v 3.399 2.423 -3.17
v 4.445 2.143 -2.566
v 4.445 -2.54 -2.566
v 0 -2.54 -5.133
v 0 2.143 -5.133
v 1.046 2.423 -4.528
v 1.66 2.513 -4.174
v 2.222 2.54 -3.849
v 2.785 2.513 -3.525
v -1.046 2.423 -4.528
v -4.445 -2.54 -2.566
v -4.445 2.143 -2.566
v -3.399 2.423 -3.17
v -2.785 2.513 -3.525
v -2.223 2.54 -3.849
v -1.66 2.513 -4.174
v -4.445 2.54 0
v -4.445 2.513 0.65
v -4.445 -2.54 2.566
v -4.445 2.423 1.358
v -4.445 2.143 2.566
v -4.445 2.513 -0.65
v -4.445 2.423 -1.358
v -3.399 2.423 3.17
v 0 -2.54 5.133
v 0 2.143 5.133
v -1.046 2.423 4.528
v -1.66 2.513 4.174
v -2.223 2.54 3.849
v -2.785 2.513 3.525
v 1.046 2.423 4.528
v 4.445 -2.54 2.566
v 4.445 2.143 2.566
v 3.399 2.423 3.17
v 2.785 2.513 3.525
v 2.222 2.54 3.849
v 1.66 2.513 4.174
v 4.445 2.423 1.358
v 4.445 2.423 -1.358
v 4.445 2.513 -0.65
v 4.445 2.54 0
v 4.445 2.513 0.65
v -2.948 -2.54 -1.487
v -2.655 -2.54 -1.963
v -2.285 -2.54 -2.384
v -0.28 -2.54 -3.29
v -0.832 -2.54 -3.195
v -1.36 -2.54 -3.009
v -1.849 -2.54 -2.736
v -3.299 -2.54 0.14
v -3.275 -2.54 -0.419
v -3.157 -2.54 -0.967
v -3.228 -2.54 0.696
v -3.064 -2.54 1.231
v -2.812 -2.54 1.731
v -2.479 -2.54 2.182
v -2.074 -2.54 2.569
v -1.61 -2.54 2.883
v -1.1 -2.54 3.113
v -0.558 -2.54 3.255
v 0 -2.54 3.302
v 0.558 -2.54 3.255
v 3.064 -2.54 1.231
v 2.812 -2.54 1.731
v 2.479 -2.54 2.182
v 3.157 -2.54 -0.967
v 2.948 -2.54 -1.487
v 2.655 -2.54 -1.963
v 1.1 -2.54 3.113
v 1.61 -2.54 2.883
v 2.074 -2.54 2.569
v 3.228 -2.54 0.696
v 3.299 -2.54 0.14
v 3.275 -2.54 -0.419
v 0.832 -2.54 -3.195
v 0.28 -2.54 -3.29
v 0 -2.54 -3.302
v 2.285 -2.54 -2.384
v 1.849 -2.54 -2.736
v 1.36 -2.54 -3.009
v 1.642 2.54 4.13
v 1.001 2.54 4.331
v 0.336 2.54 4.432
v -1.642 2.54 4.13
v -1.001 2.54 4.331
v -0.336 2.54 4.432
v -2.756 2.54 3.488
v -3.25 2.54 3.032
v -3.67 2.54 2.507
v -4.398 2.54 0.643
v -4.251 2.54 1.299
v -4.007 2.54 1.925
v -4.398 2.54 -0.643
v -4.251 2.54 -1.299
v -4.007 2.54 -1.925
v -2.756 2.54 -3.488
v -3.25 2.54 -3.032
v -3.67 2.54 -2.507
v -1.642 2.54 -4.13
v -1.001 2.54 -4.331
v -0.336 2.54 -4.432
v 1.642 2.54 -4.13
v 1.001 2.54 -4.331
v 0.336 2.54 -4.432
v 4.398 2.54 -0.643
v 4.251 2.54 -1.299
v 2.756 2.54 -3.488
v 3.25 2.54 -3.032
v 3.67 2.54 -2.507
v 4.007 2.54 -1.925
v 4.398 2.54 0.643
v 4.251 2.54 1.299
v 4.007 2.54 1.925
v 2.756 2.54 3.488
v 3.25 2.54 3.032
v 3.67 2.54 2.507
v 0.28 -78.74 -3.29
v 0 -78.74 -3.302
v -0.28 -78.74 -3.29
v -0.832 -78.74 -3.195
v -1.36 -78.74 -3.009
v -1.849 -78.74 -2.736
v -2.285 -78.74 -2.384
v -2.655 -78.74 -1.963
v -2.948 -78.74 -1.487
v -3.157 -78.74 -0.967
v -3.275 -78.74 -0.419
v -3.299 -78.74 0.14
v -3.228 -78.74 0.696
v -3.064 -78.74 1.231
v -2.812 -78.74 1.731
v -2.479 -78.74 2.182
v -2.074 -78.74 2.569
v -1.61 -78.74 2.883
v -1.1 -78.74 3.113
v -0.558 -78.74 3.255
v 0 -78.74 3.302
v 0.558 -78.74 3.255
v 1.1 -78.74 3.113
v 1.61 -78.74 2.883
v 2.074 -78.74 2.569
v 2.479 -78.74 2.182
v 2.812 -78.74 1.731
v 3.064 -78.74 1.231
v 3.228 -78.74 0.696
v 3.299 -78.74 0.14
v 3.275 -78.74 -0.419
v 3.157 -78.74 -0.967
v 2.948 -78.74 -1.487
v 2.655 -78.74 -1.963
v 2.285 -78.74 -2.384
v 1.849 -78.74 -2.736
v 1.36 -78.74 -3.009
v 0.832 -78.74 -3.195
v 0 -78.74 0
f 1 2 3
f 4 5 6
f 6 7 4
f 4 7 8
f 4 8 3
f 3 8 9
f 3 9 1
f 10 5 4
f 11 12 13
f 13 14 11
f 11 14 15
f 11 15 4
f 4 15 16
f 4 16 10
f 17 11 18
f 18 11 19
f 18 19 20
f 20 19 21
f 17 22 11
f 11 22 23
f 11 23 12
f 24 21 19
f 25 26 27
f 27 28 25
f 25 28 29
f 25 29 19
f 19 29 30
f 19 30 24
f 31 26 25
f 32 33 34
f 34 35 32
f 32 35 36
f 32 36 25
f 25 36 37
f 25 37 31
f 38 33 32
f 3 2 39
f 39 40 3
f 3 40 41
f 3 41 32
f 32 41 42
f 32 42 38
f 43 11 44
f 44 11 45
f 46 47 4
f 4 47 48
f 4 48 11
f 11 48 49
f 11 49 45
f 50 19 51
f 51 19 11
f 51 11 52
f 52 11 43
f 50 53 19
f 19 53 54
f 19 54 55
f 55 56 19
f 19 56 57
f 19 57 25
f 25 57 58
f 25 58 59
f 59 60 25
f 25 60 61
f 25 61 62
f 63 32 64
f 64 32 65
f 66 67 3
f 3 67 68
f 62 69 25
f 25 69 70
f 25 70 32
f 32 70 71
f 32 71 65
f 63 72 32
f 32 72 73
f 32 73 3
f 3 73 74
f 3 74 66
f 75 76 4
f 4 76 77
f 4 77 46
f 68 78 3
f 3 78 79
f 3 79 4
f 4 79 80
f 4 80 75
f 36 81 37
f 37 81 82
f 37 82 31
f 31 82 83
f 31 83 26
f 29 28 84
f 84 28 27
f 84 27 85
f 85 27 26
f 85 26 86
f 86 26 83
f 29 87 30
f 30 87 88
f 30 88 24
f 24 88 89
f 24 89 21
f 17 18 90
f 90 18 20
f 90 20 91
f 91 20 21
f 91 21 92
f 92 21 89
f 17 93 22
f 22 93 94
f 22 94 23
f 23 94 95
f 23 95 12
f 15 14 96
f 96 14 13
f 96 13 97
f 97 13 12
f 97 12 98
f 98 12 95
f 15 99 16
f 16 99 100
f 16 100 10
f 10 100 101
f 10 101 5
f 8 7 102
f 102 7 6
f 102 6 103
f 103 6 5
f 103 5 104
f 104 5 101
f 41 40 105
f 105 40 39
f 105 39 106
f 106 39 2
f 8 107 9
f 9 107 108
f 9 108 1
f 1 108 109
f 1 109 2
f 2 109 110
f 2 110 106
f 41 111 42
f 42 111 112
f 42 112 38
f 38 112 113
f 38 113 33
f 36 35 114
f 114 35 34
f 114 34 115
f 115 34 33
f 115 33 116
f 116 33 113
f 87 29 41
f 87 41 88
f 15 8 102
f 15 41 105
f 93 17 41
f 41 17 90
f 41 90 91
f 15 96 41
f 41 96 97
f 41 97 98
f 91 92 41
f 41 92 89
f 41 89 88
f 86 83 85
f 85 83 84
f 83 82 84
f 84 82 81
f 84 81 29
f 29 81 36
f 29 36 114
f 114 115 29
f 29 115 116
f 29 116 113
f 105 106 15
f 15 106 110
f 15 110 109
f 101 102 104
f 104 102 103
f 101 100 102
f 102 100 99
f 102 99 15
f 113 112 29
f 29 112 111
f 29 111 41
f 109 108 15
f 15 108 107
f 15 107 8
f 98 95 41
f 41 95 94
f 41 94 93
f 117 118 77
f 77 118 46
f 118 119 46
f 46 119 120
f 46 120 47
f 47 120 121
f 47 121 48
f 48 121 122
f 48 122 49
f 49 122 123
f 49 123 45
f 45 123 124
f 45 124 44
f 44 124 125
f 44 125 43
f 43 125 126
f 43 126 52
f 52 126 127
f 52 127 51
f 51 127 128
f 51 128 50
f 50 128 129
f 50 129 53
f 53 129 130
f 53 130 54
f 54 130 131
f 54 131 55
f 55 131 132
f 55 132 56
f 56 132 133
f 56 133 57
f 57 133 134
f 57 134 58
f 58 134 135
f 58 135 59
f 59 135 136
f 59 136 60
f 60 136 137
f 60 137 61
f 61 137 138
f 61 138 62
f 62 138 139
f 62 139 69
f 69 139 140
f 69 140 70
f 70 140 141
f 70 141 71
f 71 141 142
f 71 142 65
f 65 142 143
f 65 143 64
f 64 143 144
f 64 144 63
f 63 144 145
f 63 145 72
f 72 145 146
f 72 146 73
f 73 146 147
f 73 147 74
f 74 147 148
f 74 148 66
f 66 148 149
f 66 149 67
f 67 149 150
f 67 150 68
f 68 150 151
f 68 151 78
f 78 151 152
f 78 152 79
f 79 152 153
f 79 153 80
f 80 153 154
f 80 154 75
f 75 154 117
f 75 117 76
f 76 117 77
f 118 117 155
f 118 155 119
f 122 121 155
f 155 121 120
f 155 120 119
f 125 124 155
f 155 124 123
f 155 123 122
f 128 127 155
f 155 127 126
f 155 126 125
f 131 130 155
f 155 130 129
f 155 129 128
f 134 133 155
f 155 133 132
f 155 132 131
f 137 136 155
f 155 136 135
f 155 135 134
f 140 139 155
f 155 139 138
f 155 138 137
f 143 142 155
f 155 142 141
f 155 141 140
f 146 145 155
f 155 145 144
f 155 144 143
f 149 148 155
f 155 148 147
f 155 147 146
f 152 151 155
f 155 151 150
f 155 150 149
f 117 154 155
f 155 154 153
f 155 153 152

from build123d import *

# Parameters (mm, degrees)
BOSS_EXTRUDE1_DEPTH = 2.54
SKETCH2_OUTSIDE_W   = 31.388
SKETCH2_OUTSIDE_H   = 32.764
SKETCH2_OUTSIDE_R   = 4.445
CUT_EXTRUDE1_DEPTH  = 5.08
CUT_EXTRUDE1_DRAFT  = -60
SKETCH3_R           = 3.302
BOSS_EXTRUDE2_DEPTH = 76.2


with BuildPart() as part:
    # Sketch1 → Boss-Extrude1 (new, symmetric)
    with BuildSketch(Plane(origin=(0, 0, 0), x_dir=(1, 0, 0), z_dir=(0, 1, 0))):
        Polygon((0, 5.132643893), (-4.445, 2.566321947), (-4.445, -2.566321947), (0, -5.132643893), (4.445, -2.566321947), (4.445, 2.566321947), align=None)
    extrude(amount=BOSS_EXTRUDE1_DEPTH, both=True)


with BuildPart() as cut_extrude1_tool:
    # Sketch2 outside → Cut-Extrude1 (with draft: the straight prism first)
    with BuildSketch(Plane(origin=(0, 2.54, 0), x_dir=(1, 0, 0), z_dir=(0, 1, 0))):
        Rectangle(SKETCH2_OUTSIDE_W, SKETCH2_OUTSIDE_H)
        Circle(SKETCH2_OUTSIDE_R, mode=Mode.SUBTRACT)
    extrude(amount=-CUT_EXTRUDE1_DEPTH)
    # Cut-Extrude1: the draft: its side faces are tilted about the plane it starts from
    cut_extrude1_sides = [cut_extrude1_tool.faces().sort_by_distance(p)[0] for p in [
        (0, 0, 16.382),
        (15.694, 0, 0),
        (0, 0, -16.382),
        (-15.694, 0, 0),
        (-4.445, 0, 0),
    ]]
    draft(cut_extrude1_sides, Plane(origin=(0, 2.54, 0), x_dir=(1, 0, 0), z_dir=(0, 1, 0)), CUT_EXTRUDE1_DRAFT)


with BuildPart() as part_1:
    add(part.part)

    # Cut-Extrude1: cut by cut_extrude1_tool
    add(cut_extrude1_tool.part, mode=Mode.SUBTRACT)

    # Sketch3 → Boss-Extrude2 (add)
    with BuildSketch(Plane(origin=(0, -2.54, 0), x_dir=(-1, 0, 0), z_dir=(0, -1, 0))):
        with Locations(Location((0, 0, 0), (0, 0, 270))):
            Circle(SKETCH3_R)
    extrude(amount=BOSS_EXTRUDE2_DEPTH)


solid = part_1.part
